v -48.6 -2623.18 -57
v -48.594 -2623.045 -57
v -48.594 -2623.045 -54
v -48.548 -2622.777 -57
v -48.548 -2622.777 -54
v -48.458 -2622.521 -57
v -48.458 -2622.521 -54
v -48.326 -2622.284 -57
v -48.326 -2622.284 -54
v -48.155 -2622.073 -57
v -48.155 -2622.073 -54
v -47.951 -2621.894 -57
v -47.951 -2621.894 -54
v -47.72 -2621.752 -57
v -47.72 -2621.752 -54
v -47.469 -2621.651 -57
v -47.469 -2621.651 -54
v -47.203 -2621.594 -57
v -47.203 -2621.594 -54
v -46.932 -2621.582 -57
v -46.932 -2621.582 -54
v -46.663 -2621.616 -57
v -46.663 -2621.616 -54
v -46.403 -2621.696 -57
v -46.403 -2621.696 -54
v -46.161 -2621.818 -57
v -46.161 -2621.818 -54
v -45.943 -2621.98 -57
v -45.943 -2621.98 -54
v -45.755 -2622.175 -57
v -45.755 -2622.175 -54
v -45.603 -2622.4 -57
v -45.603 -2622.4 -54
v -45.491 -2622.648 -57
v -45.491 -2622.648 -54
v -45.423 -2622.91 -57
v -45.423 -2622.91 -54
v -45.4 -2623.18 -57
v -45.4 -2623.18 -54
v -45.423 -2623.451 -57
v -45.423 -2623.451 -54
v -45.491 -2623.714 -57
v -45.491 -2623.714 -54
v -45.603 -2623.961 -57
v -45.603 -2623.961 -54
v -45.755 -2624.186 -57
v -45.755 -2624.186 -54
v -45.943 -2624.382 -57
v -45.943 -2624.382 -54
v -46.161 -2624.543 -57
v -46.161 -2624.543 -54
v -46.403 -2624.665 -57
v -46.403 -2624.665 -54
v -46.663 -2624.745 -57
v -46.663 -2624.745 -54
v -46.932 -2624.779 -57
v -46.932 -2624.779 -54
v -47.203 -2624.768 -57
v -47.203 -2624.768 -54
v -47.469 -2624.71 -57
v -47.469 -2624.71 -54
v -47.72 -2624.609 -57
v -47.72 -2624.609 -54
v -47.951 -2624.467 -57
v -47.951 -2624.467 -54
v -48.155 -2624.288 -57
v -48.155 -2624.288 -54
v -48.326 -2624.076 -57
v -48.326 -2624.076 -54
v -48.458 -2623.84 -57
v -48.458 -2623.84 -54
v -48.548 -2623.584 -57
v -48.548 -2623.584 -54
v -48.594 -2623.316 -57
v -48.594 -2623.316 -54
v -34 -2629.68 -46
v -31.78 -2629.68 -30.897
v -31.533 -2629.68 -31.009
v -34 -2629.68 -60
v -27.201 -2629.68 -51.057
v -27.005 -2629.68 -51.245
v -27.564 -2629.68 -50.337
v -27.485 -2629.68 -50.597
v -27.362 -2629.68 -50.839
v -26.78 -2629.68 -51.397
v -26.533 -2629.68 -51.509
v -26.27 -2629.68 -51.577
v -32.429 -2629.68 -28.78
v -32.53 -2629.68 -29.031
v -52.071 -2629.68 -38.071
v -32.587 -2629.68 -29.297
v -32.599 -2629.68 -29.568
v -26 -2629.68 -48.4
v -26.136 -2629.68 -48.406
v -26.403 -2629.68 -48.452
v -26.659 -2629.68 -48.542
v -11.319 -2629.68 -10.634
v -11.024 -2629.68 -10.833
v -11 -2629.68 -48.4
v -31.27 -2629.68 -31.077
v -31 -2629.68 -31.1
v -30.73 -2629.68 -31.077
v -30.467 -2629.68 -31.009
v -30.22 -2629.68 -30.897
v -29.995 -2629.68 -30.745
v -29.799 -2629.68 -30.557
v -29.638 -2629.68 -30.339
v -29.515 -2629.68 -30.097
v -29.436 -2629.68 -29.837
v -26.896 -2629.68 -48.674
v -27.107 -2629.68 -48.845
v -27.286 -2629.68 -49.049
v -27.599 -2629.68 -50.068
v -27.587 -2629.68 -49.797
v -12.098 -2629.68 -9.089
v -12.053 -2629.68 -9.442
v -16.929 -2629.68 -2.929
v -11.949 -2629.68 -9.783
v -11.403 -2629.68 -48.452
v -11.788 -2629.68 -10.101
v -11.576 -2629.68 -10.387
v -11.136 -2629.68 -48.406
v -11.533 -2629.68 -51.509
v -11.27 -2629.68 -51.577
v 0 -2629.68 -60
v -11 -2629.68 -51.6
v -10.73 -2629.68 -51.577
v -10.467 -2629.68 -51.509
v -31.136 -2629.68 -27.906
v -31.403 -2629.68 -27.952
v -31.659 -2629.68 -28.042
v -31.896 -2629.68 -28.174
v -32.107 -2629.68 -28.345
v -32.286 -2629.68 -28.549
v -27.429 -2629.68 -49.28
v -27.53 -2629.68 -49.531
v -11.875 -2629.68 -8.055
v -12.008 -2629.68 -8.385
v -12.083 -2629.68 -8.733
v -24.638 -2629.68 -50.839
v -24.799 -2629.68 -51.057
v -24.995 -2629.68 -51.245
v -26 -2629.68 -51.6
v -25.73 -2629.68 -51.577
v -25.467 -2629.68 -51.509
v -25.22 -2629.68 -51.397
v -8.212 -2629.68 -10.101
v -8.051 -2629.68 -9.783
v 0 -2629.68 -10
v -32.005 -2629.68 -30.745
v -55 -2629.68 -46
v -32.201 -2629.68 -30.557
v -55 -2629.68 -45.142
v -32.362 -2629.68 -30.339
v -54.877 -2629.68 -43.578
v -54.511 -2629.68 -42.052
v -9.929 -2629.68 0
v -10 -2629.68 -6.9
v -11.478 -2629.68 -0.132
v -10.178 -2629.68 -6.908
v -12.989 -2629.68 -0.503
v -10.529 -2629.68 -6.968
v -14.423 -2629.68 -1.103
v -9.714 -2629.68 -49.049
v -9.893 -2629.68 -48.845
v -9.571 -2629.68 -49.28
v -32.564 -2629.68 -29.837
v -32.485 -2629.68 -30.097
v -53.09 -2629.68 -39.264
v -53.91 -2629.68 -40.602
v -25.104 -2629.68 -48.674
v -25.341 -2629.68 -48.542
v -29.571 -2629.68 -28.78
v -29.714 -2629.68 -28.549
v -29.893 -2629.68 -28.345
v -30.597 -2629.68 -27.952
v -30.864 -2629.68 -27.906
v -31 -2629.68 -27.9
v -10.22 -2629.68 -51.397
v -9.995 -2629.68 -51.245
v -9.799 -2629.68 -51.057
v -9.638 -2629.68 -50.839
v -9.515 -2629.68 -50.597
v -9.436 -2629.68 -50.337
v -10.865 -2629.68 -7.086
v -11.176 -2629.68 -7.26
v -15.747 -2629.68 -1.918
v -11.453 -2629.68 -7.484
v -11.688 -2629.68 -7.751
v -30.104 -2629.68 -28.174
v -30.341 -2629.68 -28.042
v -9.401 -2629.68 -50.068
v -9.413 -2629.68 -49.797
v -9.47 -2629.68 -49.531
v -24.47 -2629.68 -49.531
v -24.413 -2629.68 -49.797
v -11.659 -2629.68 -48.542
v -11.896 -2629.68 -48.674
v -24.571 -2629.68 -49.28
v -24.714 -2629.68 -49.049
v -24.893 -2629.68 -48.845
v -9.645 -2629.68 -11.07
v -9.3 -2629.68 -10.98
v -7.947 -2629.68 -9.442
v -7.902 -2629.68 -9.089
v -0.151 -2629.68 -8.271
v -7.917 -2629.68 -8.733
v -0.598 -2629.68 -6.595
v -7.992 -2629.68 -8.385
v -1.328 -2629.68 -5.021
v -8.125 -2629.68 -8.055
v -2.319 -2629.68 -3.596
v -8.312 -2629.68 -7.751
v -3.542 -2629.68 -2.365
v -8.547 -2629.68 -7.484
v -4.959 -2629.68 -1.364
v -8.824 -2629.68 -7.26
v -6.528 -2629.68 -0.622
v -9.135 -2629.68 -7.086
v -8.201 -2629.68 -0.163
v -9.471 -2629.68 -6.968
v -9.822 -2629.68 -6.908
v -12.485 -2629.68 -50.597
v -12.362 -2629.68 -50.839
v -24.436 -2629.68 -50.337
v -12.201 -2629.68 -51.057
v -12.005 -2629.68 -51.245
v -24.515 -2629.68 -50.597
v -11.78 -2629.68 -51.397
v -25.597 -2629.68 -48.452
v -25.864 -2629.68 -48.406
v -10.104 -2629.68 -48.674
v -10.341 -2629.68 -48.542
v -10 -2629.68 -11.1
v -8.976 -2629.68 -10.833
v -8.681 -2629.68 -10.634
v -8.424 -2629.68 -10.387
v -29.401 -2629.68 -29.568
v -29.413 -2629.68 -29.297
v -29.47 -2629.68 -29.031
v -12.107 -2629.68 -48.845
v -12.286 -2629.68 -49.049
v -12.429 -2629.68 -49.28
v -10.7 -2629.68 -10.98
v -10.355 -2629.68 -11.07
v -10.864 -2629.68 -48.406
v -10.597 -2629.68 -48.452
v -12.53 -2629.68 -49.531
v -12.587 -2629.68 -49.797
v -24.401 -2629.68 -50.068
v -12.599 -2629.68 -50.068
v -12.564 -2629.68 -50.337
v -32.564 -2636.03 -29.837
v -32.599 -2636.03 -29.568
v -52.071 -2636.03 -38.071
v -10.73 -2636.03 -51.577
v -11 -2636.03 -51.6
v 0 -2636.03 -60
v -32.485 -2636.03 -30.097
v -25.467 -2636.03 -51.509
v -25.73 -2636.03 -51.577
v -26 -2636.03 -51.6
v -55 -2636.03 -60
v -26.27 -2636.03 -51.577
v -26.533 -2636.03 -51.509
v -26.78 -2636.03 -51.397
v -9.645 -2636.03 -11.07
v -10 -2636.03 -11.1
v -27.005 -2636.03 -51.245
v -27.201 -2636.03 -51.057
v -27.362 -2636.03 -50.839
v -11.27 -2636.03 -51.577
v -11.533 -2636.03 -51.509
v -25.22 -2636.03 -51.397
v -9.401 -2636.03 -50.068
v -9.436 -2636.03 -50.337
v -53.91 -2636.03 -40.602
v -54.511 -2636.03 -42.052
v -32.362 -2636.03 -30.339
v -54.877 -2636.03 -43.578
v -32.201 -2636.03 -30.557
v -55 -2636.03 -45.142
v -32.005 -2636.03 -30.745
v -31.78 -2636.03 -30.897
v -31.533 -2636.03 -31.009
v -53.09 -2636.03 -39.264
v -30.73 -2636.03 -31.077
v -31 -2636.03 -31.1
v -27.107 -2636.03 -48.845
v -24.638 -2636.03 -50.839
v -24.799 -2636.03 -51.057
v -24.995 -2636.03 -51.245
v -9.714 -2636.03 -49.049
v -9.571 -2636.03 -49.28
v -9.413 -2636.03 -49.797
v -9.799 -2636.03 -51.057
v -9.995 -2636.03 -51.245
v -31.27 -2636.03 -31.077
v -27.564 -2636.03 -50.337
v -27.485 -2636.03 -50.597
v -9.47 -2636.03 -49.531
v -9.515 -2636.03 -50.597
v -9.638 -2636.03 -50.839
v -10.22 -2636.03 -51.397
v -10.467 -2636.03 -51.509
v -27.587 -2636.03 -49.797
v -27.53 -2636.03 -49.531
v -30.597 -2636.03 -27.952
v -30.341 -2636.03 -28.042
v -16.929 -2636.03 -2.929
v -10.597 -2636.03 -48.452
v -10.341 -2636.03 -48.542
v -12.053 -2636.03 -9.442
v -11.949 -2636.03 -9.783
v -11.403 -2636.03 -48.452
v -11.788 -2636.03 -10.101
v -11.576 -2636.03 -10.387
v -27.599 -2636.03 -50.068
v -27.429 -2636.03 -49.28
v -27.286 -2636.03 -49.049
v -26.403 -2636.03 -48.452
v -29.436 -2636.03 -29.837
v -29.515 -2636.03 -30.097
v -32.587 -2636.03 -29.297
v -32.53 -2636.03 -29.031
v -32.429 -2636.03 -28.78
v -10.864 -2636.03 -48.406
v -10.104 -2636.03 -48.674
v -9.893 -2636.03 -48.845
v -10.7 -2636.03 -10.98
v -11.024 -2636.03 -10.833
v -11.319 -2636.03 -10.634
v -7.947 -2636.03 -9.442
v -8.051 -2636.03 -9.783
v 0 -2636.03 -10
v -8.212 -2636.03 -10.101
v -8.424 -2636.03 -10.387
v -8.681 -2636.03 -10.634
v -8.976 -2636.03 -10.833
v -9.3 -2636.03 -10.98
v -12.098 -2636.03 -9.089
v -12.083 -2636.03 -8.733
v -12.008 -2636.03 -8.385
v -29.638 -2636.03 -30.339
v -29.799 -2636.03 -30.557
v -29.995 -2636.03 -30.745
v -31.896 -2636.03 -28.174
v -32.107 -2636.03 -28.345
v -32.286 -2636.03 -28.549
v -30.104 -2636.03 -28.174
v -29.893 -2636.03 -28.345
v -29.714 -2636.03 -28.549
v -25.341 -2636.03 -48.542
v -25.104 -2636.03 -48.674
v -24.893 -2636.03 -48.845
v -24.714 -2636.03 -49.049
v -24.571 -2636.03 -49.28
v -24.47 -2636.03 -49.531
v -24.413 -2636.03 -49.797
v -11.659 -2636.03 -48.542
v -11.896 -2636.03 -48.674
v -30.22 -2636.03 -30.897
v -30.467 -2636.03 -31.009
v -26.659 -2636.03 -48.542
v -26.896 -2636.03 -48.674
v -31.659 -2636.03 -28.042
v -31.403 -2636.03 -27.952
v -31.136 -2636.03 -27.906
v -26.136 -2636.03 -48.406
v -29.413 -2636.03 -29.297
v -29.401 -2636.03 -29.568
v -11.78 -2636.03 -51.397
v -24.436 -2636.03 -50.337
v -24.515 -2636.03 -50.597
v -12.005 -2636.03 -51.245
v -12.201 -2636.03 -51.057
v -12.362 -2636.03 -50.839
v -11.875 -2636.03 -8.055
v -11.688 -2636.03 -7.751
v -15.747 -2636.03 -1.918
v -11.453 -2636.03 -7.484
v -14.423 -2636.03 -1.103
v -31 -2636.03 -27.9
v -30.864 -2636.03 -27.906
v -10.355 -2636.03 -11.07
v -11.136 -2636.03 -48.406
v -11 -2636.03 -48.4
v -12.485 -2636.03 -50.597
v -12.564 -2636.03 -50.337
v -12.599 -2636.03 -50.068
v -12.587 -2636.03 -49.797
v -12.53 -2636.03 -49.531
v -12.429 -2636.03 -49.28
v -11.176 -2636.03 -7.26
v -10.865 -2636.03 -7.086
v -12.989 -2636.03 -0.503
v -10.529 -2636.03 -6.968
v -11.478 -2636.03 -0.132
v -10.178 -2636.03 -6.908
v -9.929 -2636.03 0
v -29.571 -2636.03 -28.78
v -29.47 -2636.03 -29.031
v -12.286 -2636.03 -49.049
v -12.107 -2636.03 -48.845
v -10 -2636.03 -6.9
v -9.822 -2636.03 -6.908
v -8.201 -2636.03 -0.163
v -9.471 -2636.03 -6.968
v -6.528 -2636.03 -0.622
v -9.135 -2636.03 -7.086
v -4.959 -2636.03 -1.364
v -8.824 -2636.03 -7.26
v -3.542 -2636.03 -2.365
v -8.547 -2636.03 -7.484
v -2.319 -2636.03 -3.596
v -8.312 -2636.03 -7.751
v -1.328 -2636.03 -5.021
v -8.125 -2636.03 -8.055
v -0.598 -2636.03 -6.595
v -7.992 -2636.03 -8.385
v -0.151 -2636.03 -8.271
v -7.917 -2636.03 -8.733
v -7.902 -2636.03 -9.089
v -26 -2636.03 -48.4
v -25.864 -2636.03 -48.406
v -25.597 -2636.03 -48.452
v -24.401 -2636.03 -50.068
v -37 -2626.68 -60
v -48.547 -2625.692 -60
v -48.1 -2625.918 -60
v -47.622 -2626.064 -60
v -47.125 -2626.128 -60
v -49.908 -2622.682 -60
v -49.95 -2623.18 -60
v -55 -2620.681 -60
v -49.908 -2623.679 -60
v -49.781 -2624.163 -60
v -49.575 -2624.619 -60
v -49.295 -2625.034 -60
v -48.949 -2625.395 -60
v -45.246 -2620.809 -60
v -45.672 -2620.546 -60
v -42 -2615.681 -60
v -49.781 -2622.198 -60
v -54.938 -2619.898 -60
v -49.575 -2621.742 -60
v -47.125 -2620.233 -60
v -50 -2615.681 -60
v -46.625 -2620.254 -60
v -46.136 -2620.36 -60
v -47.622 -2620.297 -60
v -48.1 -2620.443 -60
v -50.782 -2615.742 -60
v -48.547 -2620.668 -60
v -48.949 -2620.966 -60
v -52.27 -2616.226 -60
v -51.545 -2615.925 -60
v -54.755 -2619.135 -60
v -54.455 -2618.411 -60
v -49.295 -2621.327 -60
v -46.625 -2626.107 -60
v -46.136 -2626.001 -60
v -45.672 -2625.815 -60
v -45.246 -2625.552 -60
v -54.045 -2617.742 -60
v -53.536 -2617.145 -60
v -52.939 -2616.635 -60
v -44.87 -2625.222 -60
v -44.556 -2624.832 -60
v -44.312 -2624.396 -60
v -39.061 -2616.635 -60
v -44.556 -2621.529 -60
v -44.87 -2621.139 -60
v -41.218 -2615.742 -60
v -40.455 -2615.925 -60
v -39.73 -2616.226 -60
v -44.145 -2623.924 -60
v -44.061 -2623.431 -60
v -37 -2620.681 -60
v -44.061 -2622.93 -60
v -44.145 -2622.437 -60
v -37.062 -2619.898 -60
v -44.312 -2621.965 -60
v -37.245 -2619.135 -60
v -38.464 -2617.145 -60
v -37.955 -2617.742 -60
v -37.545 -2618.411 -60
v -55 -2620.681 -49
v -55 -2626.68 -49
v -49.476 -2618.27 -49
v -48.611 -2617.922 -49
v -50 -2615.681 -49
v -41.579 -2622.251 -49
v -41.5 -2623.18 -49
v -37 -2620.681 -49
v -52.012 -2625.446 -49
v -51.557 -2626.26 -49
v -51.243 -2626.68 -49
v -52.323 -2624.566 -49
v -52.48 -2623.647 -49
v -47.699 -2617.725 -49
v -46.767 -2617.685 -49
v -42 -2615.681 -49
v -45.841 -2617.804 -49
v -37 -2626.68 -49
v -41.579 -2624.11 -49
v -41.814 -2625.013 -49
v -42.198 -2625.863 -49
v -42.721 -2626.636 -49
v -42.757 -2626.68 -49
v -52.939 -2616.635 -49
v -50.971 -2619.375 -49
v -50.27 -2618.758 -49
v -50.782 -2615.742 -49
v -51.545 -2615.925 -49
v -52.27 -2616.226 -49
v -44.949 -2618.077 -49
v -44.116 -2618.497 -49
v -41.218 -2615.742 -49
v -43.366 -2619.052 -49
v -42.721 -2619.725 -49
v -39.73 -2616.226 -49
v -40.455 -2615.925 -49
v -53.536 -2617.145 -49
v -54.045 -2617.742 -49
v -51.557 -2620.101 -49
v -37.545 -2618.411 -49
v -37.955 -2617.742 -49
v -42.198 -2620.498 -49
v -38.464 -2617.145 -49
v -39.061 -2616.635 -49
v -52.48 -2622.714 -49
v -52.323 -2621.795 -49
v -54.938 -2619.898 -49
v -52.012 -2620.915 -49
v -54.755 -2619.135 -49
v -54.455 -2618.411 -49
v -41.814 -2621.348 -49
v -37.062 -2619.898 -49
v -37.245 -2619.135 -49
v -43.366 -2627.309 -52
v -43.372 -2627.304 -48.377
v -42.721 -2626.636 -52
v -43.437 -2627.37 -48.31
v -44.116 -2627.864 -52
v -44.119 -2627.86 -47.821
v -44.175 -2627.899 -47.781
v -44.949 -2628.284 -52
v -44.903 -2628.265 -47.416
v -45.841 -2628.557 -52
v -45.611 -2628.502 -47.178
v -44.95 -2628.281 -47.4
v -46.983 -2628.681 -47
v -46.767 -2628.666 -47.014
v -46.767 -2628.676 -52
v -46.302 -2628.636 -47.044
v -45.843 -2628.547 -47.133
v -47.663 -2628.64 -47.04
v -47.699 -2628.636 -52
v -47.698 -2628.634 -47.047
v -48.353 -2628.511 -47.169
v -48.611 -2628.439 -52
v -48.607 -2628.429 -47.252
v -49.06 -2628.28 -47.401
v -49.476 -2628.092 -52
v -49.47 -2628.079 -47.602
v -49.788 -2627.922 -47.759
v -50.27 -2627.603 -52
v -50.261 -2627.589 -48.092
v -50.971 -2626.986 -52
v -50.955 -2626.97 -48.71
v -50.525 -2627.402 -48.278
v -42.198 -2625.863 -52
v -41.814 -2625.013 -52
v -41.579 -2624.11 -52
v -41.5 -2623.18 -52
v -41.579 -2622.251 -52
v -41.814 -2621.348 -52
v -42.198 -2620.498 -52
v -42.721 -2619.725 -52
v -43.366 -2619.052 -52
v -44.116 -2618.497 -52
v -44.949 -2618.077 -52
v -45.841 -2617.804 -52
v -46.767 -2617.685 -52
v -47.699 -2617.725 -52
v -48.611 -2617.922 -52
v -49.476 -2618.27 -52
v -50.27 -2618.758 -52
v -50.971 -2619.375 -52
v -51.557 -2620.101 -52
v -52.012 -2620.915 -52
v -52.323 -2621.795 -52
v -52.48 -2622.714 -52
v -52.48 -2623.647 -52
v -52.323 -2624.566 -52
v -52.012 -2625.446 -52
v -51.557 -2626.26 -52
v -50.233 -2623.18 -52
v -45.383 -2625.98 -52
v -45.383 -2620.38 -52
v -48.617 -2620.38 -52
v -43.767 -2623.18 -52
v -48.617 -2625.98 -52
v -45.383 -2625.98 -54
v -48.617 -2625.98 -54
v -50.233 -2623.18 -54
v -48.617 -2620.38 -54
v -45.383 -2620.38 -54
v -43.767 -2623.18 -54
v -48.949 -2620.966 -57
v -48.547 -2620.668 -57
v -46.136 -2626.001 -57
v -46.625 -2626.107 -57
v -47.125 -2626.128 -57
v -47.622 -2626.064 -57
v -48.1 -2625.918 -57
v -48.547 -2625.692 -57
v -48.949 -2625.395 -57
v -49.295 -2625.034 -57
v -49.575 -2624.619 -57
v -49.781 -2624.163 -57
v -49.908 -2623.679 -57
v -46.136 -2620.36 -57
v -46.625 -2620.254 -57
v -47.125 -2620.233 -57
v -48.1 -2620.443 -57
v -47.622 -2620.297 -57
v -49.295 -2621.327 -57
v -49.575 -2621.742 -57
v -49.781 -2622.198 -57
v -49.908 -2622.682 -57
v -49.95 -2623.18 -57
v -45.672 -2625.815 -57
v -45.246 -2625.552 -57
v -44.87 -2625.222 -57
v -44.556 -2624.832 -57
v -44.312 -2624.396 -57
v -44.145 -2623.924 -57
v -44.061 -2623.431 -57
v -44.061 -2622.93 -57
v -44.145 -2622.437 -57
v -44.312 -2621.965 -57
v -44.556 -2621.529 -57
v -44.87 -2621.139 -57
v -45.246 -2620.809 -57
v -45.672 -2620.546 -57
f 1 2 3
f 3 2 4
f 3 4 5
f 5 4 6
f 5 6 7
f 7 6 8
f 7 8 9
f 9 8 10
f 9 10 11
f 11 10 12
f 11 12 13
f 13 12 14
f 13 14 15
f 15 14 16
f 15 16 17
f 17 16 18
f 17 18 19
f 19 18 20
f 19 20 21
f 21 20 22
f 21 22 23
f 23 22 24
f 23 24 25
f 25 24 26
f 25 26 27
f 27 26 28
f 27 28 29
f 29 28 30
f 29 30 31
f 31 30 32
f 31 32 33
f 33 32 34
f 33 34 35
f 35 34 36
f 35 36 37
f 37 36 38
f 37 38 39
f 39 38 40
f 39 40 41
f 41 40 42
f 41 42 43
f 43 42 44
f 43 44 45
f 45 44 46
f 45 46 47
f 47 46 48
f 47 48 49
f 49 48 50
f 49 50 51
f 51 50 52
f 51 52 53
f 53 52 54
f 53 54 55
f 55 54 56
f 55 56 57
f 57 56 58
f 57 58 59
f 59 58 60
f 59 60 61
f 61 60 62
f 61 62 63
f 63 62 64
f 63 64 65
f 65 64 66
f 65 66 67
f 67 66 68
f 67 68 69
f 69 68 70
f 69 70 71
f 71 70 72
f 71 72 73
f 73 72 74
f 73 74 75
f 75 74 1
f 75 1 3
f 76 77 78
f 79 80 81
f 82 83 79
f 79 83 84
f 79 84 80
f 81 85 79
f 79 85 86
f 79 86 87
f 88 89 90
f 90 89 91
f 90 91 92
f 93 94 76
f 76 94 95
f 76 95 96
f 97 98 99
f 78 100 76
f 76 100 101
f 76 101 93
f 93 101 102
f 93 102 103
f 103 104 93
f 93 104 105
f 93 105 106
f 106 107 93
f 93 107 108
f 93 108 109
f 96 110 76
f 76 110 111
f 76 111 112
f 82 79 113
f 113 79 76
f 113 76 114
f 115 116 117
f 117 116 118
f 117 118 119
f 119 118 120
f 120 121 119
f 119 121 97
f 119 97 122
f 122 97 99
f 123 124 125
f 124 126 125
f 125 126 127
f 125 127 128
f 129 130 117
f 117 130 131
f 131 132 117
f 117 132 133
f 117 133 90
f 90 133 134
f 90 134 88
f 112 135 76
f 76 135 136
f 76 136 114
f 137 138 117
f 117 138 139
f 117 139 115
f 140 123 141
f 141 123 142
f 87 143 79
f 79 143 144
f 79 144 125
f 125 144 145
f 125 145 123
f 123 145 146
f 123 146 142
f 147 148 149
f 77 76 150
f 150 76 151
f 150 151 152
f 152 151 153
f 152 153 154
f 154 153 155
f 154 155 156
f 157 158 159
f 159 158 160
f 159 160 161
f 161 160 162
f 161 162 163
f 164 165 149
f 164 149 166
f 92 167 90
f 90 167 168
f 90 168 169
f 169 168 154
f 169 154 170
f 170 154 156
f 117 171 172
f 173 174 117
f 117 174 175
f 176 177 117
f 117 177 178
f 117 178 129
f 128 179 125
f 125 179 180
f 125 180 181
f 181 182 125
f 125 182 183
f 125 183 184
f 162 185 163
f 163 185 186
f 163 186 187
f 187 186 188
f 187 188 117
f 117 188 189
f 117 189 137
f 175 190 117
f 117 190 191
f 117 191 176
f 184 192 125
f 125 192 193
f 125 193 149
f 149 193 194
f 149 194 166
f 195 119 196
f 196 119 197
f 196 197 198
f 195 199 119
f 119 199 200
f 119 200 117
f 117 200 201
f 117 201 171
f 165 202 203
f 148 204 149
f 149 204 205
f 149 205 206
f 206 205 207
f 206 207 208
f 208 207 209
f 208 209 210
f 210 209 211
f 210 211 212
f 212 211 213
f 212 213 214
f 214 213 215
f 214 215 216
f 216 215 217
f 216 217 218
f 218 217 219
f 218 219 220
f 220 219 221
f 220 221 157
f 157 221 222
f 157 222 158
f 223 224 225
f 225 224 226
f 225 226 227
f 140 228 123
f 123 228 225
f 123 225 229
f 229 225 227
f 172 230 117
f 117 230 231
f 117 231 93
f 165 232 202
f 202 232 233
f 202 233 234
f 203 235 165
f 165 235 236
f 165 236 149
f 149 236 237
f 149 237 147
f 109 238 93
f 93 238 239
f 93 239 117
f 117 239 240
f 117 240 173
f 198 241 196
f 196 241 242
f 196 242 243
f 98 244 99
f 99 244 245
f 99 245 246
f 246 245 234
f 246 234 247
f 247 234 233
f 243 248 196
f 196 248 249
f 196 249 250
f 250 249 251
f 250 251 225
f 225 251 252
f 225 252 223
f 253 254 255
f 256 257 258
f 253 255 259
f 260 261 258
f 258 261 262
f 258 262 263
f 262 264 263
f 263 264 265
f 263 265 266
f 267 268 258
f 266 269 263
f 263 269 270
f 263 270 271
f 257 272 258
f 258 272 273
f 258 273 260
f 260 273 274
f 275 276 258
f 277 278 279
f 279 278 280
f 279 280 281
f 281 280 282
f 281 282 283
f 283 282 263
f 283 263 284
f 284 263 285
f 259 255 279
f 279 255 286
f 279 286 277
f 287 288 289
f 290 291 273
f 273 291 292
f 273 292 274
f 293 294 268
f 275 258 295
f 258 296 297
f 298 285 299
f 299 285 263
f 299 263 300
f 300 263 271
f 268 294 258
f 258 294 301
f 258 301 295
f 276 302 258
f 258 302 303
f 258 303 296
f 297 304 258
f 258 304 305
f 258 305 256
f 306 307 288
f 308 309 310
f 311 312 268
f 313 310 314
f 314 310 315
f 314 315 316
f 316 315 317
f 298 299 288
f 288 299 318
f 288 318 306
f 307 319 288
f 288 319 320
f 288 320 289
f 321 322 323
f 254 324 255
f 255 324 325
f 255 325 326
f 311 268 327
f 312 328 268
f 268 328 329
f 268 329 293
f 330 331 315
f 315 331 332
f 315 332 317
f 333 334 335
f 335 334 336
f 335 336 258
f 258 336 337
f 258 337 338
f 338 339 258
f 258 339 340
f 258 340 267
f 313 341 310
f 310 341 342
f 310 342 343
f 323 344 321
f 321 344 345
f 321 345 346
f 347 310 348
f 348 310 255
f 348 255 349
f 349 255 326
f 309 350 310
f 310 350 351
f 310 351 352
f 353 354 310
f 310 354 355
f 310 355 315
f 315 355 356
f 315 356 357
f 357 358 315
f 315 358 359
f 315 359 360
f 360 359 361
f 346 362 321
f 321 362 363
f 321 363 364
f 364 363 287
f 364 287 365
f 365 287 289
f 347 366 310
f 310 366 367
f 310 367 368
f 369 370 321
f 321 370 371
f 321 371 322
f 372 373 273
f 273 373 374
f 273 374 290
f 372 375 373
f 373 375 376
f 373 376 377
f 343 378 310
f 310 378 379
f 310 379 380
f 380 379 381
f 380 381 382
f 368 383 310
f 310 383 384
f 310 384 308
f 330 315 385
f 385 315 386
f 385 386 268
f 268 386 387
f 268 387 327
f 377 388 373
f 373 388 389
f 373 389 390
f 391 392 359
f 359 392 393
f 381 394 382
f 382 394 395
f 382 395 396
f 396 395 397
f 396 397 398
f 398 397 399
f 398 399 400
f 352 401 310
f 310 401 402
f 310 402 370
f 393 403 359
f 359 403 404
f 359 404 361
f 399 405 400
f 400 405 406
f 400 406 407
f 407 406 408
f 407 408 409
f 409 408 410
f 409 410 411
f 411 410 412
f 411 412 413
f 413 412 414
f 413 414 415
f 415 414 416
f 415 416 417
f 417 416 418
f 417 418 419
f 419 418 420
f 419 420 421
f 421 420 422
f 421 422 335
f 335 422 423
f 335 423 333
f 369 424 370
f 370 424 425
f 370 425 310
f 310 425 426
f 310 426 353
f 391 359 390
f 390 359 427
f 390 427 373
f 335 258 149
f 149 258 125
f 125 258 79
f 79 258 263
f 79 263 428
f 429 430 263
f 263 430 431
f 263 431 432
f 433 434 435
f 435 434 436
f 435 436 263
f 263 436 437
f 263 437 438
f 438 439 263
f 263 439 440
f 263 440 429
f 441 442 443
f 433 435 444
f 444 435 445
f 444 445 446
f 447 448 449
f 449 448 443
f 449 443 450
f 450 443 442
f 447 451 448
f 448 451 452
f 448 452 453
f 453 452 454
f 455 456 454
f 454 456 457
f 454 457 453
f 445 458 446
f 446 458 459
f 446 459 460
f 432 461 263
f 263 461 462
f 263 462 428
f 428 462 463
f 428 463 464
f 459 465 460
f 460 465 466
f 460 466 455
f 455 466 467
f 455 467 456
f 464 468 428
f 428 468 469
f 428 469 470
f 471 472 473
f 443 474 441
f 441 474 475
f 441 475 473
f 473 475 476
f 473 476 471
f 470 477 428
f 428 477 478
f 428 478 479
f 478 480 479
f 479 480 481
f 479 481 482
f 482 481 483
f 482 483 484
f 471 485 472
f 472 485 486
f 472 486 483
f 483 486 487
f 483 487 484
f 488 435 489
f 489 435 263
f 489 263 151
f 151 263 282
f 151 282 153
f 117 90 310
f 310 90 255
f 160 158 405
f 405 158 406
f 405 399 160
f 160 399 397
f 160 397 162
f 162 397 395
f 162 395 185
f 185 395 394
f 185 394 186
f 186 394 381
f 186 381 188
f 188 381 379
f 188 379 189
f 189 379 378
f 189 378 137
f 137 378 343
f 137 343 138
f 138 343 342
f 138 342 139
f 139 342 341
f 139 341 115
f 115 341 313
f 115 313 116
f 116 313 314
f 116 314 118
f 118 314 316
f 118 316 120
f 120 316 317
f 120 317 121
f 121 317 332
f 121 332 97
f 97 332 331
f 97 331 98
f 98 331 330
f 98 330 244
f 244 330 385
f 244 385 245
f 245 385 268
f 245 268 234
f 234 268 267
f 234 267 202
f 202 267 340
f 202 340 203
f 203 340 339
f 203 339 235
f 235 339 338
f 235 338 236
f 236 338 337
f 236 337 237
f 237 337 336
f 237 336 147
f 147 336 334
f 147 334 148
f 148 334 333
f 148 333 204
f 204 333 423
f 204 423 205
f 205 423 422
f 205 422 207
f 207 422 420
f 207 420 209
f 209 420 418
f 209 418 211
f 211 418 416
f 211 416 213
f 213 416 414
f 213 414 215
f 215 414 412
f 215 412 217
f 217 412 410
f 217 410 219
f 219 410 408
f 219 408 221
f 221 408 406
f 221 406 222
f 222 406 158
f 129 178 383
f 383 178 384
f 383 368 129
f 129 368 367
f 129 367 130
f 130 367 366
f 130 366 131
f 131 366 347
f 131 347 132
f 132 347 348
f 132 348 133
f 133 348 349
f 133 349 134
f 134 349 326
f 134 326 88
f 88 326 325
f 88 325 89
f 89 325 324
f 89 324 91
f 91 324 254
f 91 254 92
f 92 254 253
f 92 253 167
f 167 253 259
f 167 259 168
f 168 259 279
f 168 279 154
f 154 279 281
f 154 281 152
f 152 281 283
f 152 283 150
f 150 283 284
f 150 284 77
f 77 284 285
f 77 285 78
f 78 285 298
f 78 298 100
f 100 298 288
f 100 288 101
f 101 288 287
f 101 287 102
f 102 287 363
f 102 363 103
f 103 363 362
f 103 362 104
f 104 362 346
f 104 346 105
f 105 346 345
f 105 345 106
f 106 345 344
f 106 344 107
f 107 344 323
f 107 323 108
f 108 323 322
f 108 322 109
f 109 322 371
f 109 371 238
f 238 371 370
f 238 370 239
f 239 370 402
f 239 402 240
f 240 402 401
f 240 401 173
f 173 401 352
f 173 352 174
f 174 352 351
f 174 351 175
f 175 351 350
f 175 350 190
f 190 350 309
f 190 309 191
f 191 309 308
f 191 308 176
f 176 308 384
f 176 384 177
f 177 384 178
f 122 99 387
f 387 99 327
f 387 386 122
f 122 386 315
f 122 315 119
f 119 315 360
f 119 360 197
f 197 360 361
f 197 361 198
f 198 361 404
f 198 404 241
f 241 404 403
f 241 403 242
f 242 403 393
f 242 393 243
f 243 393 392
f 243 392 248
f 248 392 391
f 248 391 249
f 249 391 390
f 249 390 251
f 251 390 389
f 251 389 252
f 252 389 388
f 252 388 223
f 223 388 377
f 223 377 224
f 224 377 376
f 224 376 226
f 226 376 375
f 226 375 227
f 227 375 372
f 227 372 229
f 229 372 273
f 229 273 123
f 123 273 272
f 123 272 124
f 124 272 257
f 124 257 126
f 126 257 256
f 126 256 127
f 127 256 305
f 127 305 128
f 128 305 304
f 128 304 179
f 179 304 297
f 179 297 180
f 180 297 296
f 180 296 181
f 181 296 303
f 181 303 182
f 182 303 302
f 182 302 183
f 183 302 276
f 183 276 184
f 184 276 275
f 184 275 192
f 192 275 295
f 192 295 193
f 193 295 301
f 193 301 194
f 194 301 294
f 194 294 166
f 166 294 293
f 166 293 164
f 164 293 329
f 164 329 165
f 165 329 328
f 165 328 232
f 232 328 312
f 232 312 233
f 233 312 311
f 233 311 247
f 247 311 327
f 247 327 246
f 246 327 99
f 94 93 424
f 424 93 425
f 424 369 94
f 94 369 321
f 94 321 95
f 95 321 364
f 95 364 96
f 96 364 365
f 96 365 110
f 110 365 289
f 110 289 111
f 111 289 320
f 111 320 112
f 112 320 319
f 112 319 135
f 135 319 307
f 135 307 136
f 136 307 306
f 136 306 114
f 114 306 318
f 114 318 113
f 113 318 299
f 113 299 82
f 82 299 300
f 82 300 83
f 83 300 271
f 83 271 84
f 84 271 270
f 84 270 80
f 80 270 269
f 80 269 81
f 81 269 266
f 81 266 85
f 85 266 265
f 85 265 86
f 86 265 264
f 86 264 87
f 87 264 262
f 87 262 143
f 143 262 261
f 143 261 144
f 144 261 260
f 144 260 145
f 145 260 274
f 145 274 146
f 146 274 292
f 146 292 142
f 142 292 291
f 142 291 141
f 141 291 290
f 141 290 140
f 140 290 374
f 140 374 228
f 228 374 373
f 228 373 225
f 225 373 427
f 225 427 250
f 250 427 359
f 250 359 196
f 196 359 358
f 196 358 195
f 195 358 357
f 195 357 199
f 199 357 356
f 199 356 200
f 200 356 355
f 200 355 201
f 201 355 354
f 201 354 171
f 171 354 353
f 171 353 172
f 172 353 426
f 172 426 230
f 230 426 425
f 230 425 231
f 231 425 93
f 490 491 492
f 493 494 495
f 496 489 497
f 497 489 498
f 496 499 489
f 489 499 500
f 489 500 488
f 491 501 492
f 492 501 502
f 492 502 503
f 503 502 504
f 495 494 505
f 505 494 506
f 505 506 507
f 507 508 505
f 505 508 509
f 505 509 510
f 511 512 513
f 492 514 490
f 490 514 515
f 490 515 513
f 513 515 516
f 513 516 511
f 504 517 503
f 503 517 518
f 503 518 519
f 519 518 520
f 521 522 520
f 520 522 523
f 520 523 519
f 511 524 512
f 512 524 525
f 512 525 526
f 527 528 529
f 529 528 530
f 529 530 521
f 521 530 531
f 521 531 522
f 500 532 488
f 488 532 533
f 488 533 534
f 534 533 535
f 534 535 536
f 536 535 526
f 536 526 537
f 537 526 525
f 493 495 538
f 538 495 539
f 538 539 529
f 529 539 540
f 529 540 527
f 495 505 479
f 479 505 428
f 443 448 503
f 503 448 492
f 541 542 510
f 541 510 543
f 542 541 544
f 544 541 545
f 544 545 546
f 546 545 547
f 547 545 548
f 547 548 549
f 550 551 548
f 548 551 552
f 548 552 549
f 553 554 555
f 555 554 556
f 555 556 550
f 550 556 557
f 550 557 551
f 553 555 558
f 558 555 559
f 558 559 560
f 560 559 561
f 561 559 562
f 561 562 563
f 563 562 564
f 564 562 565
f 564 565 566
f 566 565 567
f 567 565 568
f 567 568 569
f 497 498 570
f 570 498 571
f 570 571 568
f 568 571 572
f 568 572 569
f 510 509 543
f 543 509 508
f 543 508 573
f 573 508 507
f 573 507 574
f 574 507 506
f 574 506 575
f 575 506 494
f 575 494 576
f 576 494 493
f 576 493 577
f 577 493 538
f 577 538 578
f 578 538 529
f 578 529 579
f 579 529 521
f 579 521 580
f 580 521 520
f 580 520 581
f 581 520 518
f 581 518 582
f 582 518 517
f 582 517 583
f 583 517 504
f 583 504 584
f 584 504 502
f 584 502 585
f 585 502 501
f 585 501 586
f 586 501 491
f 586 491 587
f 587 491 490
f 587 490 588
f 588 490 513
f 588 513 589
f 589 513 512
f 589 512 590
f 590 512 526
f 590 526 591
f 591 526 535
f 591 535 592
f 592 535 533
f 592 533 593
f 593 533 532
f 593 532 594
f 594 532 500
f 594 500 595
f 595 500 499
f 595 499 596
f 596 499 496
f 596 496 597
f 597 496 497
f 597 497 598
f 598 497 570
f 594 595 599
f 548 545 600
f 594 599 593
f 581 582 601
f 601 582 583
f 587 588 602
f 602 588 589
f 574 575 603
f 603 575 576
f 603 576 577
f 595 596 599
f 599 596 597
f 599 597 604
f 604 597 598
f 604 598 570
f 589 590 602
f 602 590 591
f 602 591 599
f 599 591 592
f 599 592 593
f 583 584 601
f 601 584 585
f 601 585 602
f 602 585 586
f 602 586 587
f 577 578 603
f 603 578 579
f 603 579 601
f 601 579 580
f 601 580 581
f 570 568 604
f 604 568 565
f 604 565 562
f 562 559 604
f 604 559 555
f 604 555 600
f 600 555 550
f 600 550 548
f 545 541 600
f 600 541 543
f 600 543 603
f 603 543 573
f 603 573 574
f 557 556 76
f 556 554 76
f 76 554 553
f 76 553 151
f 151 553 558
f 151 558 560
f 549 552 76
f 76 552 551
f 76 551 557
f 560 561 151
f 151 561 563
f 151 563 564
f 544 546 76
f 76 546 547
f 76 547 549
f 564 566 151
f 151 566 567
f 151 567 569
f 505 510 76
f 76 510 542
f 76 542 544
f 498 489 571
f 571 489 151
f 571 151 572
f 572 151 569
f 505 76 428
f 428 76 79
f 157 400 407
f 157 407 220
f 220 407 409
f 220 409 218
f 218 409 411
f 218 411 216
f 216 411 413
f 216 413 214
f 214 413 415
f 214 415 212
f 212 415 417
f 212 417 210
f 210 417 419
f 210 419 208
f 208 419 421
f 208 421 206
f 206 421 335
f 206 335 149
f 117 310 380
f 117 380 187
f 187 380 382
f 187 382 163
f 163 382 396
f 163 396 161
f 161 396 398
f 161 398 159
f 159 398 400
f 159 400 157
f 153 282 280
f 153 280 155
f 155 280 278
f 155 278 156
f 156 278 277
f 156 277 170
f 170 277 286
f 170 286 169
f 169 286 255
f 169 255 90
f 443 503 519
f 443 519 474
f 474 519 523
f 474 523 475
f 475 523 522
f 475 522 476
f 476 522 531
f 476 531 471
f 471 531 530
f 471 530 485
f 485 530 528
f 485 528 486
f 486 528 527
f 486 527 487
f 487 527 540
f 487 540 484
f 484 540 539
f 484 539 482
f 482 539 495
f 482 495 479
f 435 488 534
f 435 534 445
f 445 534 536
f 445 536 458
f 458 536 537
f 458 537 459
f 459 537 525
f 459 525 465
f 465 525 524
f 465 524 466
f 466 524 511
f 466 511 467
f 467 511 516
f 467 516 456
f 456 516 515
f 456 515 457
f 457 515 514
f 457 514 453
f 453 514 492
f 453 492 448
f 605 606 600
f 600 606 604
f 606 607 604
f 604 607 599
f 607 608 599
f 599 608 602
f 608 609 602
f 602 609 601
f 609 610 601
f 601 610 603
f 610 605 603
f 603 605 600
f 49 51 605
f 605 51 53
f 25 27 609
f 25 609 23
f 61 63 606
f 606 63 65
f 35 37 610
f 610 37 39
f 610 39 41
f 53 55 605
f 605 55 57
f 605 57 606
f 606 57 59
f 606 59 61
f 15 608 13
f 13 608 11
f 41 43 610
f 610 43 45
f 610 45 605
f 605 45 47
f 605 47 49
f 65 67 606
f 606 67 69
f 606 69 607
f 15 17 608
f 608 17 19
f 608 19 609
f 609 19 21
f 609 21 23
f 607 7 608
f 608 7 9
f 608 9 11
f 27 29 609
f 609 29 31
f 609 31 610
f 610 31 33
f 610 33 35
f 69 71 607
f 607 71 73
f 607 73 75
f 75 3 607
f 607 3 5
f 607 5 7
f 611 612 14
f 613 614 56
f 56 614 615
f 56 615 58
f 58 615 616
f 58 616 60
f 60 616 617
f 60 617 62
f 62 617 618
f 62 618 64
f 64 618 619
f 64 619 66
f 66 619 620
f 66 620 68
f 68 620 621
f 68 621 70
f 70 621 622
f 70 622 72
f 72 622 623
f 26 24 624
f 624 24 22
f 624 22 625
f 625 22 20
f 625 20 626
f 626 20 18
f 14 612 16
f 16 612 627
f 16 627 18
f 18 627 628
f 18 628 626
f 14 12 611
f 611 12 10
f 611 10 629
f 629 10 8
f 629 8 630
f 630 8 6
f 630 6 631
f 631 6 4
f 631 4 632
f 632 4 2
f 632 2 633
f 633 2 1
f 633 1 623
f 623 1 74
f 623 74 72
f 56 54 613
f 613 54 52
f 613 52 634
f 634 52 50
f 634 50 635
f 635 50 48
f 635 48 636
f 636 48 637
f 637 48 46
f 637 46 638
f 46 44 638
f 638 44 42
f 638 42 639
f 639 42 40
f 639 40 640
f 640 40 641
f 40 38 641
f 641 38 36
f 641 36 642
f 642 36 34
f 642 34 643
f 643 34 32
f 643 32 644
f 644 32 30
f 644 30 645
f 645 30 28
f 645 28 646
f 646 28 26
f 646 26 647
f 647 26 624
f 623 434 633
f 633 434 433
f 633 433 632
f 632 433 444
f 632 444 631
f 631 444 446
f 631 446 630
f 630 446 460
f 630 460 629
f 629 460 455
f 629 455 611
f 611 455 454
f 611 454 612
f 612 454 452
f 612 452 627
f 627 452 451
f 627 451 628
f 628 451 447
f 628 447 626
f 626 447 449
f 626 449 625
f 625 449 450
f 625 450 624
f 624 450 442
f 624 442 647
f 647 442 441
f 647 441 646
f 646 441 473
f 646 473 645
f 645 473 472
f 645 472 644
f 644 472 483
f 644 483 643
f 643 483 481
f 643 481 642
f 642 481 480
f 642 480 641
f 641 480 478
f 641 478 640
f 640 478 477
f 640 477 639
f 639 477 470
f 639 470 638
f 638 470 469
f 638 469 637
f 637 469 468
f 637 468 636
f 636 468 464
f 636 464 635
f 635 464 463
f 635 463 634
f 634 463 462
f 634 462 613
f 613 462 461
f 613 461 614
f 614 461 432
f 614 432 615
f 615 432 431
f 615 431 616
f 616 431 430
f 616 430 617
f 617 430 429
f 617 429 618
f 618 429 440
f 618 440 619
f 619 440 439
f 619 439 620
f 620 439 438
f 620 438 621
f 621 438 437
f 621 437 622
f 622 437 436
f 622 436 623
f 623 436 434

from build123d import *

# Parameters (mm, degrees)
SKETCH1_R           = 2.1
SKETCH1_R_2         = 1.6
BOSS_EXTRUDE1_DEPTH = 6.35
SKETCH2_W           = 18
SKETCH2_H           = 11
BOSS_EXTRUDE2_DEPTH = 14
SKETCH3_R           = 5.5
CUT_EXTRUDE1_DEPTH  = 3
CHAMFER1_SIZE       = 3
FILLET2_R           = 10
FILLET3_R           = 5
CUT_EXTRUDE2_DEPTH  = 2
SKETCH5_R           = 1.6
CUT_EXTRUDE3_DEPTH  = 2638.157111638
SKETCH6_R           = 2.95
CUT_EXTRUDE4_DEPTH  = 3


with BuildPart() as part:
    # Sketch1 → Boss-Extrude1 (new body)
    with BuildSketch(Plane(origin=(251.886129178, -2636.030473787, -0.277944786), x_dir=(1, 0, 0), z_dir=(0, 1, 0))):
        Polygon((-265.886129178, -0.277944786), (-251.886129178, -0.277944786), (-251.886129178, 59.722055214), (-306.886129178, 59.722055214), (-306.886129178, 40.722055214), align=None)
        with Locations(Location((-261.886129178, 8.722055214, 0), (0, 0, 270))):
            Circle(SKETCH1_R, mode=Mode.SUBTRACT)
        with Locations(Location((-282.886129178, 29.222055214, 0), (0, 0, 270))):
            Circle(SKETCH1_R_2, mode=Mode.SUBTRACT)
        with Locations(Location((-262.886129178, 49.722055214, 0), (0, 0, 270))):
            Circle(SKETCH1_R_2, mode=Mode.SUBTRACT)
        with Locations(Location((-277.886129178, 49.722055214, 0), (0, 0, 270))):
            Circle(SKETCH1_R_2, mode=Mode.SUBTRACT)
    extrude(amount=BOSS_EXTRUDE1_DEPTH)

    # Sketch2 → Boss-Extrude2 (add)
    with BuildSketch(Plane(origin=(-55, -2629.680473787, -60), x_dir=(1, 0, 0), z_dir=(0, -1, 0))):
        with Locations((9, 5.5)):
            Rectangle(SKETCH2_W, SKETCH2_H)
    extrude(amount=-BOSS_EXTRUDE2_DEPTH)

    # Sketch3 → Cut-Extrude1 (cut)
    with BuildSketch(Plane.XY.offset(-49)):
        with Locations((-47, -2623.180473787)):
            Circle(SKETCH3_R)
    extrude(amount=-CUT_EXTRUDE1_DEPTH, mode=Mode.SUBTRACT)

    # Chamfer1
    # the kernel refuses this chamfer: 3 mm, written as the material it adds along each edge
    with BuildSketch(Plane(origin=(-37, -2629.680473787, -49), x_dir=(0, -0.02749587661065579, 0.9996219169112949), z_dir=(-1, 0, 0))) as chamfer1_piece_1_section:
        Polygon((CHAMFER1_SIZE * 0.999621916911, CHAMFER1_SIZE * 0.0274958766107), (-CHAMFER1_SIZE * 0.0274958766107, CHAMFER1_SIZE * 0.999621916911), (0, 0), align=None)
    chamfer1_piece_1 = extrude(amount=18, mode=Mode.PRIVATE)
    chamfer1_piece_1 = chamfer1_piece_1 - Plane(origin=(-47, -2623.180473787, -47.945016367), x_dir=(1, 0, 0), z_dir=(0, 0, 1)) * Cylinder(5.5, 48, mode=Mode.PRIVATE)
    add(chamfer1_piece_1)
    with BuildSketch(Plane(origin=(-37, -2629.680473787, -60), x_dir=(0.9996219169112948, -0.027495876610655785, 0), z_dir=(0, 0, 1))) as chamfer1_piece_2:
        Polygon((CHAMFER1_SIZE * 0.999621916911, CHAMFER1_SIZE * 0.0274958766107), (-CHAMFER1_SIZE * 0.0274958766107, CHAMFER1_SIZE * 0.999621916911), (0, 0), align=None)
    extrude(amount=11)
    with BuildSketch(Plane(origin=(-29.284951036, -2629.680473787, -49), x_dir=(0, -0.02749587661065579, 0.9996219169112949), z_dir=(-1, 0, 0))) as chamfer1_piece_3a_section:
        Polygon((CHAMFER1_SIZE * 0.999621916911, CHAMFER1_SIZE * 0.0274958766107), (-CHAMFER1_SIZE * 0.0274958766107, CHAMFER1_SIZE * 0.999621916911), (0, 0), align=None)
    chamfer1_piece_3a = extrude(amount=25.715048964, mode=Mode.PRIVATE)
    chamfer1_piece_3a = split(chamfer1_piece_3a, bisect_by=Plane(origin=(-37, -2628.691092907, -48.01061912), z_dir=(1, 0, 0)), keep=Keep.TOP, mode=Mode.PRIVATE)
    with BuildSketch(Plane(origin=(-37, -2629.680473787, -60), x_dir=(0.9996219169112948, -0.027495876610655785, 0), z_dir=(0, 0, 1))) as chamfer1_piece_3b_section:
        Polygon((CHAMFER1_SIZE * 0.999621916911, CHAMFER1_SIZE * 0.0274958766107), (-CHAMFER1_SIZE * 0.0274958766107, CHAMFER1_SIZE * 0.999621916911), (0, 0), align=None)
    chamfer1_piece_3b = extrude(amount=18.715048964, mode=Mode.PRIVATE)
    chamfer1_piece_3b = split(chamfer1_piece_3b, bisect_by=Plane(origin=(-36.01061912, -2628.691092907, -49), z_dir=(0, 0, 1)), keep=Keep.TOP, mode=Mode.PRIVATE)
    chamfer1_piece_3 = chamfer1_piece_3a & chamfer1_piece_3b
    add(chamfer1_piece_3)

    # Fillet2
    # the kernel refuses this fillet: 10 mm, written as the material it takes off along each edge
    with BuildSketch(Plane(origin=(-14, -2646.385812847, 0), x_dir=(1, 0, 0), z_dir=(0, 1, 0)), Plane(origin=(-55, -2646.385812847, -41), x_dir=(0.7071067811865518, 0, 0.7071067811865432), z_dir=(0, 1, 0))) as fillet2_piece_1:
        with BuildLine():
            CenterArc((FILLET2_R * 0.414213562373, FILLET2_R), FILLET2_R, 225, 45)
            Line((-FILLET2_R * 0.292893218813, FILLET2_R * 0.292893218813), (0, 0))
            Line((0, 0), (FILLET2_R * 0.414213562373, 0))
        make_face()
    extrude(amount=27.060678119, mode=Mode.SUBTRACT)
    with BuildSketch(Plane(origin=(0, -2661.030473787, 0), x_dir=(0, 0, -1), z_dir=(0, 1, 0))) as fillet2_piece_2:
        with BuildLine():
            CenterArc((FILLET2_R, FILLET2_R), FILLET2_R, 180, 90)
            Line((0, FILLET2_R), (0, 0))
            Line((0, 0), (FILLET2_R, 0))
        make_face()
    extrude(amount=56.35, mode=Mode.SUBTRACT)

    # Fillet3
    fillet3_edges = [part.edges().sort_by_distance(p)[0] for p in [
        (-37, -2615.680473787, -54.5),
        (-55, -2615.680473787, -54.5),
    ]]
    fillet(fillet3_edges, radius=FILLET3_R)

    # Sketch4 → Cut-Extrude2 (cut)
    with BuildSketch(Plane.XY.offset(-52)):
        Polygon((-45.383419246, -2625.980473787), (-43.766838493, -2623.180473787), (-45.383419246, -2620.380473787), (-48.616580754, -2620.380473787), (-50.233161507, -2623.180473787), (-48.616580754, -2625.980473787), align=None)
    extrude(amount=-CUT_EXTRUDE2_DEPTH, mode=Mode.SUBTRACT)

    # Sketch5 → Cut-Extrude3 (cut, through all)
    with BuildSketch(Plane.XY.offset(-54)):
        with Locations((-47, -2623.180473787)):
            Circle(SKETCH5_R)
    extrude(amount=-CUT_EXTRUDE3_DEPTH, mode=Mode.SUBTRACT)

    # Sketch6 → Cut-Extrude4 (cut)
    with BuildSketch(Plane(origin=(0, 0, -60), x_dir=(-1, 0, 0), z_dir=(0, 0, -1))):
        with Locations((47, -2623.180473787)):
            Circle(SKETCH6_R)
    extrude(amount=-CUT_EXTRUDE4_DEPTH, mode=Mode.SUBTRACT)


solid = part.part
